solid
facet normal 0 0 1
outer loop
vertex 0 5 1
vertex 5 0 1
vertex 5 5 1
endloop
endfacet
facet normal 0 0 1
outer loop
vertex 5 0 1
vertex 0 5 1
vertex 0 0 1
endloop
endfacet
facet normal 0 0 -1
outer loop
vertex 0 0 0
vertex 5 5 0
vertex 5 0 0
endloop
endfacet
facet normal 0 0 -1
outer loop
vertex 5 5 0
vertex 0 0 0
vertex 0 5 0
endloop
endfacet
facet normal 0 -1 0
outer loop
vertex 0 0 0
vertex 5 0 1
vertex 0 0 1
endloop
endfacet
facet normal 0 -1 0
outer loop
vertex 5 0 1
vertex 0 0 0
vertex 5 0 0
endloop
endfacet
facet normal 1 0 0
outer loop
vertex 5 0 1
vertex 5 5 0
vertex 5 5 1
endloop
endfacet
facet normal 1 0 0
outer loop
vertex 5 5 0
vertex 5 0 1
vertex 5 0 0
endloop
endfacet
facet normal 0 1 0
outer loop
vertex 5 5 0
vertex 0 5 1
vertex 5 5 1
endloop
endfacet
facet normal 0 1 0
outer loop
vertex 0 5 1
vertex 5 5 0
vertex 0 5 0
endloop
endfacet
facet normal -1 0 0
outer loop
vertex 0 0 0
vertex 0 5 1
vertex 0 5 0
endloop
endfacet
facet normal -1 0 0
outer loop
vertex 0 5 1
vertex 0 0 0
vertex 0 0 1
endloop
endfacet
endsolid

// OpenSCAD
/* Warning, this is a very basic generator with a lot of approximation 
input data : [VQFN, S3B, 5x5x1mm, 44, , A, C04-21399A]
generated by com.zoubworld.electronics.cad.model3d.Basic
Date : Sun Feb 15 10:50:49 CET 2026
*/

//body
color("black")
translate([0,0,0])
cube([5.0,5.0,1.0], center=false);
